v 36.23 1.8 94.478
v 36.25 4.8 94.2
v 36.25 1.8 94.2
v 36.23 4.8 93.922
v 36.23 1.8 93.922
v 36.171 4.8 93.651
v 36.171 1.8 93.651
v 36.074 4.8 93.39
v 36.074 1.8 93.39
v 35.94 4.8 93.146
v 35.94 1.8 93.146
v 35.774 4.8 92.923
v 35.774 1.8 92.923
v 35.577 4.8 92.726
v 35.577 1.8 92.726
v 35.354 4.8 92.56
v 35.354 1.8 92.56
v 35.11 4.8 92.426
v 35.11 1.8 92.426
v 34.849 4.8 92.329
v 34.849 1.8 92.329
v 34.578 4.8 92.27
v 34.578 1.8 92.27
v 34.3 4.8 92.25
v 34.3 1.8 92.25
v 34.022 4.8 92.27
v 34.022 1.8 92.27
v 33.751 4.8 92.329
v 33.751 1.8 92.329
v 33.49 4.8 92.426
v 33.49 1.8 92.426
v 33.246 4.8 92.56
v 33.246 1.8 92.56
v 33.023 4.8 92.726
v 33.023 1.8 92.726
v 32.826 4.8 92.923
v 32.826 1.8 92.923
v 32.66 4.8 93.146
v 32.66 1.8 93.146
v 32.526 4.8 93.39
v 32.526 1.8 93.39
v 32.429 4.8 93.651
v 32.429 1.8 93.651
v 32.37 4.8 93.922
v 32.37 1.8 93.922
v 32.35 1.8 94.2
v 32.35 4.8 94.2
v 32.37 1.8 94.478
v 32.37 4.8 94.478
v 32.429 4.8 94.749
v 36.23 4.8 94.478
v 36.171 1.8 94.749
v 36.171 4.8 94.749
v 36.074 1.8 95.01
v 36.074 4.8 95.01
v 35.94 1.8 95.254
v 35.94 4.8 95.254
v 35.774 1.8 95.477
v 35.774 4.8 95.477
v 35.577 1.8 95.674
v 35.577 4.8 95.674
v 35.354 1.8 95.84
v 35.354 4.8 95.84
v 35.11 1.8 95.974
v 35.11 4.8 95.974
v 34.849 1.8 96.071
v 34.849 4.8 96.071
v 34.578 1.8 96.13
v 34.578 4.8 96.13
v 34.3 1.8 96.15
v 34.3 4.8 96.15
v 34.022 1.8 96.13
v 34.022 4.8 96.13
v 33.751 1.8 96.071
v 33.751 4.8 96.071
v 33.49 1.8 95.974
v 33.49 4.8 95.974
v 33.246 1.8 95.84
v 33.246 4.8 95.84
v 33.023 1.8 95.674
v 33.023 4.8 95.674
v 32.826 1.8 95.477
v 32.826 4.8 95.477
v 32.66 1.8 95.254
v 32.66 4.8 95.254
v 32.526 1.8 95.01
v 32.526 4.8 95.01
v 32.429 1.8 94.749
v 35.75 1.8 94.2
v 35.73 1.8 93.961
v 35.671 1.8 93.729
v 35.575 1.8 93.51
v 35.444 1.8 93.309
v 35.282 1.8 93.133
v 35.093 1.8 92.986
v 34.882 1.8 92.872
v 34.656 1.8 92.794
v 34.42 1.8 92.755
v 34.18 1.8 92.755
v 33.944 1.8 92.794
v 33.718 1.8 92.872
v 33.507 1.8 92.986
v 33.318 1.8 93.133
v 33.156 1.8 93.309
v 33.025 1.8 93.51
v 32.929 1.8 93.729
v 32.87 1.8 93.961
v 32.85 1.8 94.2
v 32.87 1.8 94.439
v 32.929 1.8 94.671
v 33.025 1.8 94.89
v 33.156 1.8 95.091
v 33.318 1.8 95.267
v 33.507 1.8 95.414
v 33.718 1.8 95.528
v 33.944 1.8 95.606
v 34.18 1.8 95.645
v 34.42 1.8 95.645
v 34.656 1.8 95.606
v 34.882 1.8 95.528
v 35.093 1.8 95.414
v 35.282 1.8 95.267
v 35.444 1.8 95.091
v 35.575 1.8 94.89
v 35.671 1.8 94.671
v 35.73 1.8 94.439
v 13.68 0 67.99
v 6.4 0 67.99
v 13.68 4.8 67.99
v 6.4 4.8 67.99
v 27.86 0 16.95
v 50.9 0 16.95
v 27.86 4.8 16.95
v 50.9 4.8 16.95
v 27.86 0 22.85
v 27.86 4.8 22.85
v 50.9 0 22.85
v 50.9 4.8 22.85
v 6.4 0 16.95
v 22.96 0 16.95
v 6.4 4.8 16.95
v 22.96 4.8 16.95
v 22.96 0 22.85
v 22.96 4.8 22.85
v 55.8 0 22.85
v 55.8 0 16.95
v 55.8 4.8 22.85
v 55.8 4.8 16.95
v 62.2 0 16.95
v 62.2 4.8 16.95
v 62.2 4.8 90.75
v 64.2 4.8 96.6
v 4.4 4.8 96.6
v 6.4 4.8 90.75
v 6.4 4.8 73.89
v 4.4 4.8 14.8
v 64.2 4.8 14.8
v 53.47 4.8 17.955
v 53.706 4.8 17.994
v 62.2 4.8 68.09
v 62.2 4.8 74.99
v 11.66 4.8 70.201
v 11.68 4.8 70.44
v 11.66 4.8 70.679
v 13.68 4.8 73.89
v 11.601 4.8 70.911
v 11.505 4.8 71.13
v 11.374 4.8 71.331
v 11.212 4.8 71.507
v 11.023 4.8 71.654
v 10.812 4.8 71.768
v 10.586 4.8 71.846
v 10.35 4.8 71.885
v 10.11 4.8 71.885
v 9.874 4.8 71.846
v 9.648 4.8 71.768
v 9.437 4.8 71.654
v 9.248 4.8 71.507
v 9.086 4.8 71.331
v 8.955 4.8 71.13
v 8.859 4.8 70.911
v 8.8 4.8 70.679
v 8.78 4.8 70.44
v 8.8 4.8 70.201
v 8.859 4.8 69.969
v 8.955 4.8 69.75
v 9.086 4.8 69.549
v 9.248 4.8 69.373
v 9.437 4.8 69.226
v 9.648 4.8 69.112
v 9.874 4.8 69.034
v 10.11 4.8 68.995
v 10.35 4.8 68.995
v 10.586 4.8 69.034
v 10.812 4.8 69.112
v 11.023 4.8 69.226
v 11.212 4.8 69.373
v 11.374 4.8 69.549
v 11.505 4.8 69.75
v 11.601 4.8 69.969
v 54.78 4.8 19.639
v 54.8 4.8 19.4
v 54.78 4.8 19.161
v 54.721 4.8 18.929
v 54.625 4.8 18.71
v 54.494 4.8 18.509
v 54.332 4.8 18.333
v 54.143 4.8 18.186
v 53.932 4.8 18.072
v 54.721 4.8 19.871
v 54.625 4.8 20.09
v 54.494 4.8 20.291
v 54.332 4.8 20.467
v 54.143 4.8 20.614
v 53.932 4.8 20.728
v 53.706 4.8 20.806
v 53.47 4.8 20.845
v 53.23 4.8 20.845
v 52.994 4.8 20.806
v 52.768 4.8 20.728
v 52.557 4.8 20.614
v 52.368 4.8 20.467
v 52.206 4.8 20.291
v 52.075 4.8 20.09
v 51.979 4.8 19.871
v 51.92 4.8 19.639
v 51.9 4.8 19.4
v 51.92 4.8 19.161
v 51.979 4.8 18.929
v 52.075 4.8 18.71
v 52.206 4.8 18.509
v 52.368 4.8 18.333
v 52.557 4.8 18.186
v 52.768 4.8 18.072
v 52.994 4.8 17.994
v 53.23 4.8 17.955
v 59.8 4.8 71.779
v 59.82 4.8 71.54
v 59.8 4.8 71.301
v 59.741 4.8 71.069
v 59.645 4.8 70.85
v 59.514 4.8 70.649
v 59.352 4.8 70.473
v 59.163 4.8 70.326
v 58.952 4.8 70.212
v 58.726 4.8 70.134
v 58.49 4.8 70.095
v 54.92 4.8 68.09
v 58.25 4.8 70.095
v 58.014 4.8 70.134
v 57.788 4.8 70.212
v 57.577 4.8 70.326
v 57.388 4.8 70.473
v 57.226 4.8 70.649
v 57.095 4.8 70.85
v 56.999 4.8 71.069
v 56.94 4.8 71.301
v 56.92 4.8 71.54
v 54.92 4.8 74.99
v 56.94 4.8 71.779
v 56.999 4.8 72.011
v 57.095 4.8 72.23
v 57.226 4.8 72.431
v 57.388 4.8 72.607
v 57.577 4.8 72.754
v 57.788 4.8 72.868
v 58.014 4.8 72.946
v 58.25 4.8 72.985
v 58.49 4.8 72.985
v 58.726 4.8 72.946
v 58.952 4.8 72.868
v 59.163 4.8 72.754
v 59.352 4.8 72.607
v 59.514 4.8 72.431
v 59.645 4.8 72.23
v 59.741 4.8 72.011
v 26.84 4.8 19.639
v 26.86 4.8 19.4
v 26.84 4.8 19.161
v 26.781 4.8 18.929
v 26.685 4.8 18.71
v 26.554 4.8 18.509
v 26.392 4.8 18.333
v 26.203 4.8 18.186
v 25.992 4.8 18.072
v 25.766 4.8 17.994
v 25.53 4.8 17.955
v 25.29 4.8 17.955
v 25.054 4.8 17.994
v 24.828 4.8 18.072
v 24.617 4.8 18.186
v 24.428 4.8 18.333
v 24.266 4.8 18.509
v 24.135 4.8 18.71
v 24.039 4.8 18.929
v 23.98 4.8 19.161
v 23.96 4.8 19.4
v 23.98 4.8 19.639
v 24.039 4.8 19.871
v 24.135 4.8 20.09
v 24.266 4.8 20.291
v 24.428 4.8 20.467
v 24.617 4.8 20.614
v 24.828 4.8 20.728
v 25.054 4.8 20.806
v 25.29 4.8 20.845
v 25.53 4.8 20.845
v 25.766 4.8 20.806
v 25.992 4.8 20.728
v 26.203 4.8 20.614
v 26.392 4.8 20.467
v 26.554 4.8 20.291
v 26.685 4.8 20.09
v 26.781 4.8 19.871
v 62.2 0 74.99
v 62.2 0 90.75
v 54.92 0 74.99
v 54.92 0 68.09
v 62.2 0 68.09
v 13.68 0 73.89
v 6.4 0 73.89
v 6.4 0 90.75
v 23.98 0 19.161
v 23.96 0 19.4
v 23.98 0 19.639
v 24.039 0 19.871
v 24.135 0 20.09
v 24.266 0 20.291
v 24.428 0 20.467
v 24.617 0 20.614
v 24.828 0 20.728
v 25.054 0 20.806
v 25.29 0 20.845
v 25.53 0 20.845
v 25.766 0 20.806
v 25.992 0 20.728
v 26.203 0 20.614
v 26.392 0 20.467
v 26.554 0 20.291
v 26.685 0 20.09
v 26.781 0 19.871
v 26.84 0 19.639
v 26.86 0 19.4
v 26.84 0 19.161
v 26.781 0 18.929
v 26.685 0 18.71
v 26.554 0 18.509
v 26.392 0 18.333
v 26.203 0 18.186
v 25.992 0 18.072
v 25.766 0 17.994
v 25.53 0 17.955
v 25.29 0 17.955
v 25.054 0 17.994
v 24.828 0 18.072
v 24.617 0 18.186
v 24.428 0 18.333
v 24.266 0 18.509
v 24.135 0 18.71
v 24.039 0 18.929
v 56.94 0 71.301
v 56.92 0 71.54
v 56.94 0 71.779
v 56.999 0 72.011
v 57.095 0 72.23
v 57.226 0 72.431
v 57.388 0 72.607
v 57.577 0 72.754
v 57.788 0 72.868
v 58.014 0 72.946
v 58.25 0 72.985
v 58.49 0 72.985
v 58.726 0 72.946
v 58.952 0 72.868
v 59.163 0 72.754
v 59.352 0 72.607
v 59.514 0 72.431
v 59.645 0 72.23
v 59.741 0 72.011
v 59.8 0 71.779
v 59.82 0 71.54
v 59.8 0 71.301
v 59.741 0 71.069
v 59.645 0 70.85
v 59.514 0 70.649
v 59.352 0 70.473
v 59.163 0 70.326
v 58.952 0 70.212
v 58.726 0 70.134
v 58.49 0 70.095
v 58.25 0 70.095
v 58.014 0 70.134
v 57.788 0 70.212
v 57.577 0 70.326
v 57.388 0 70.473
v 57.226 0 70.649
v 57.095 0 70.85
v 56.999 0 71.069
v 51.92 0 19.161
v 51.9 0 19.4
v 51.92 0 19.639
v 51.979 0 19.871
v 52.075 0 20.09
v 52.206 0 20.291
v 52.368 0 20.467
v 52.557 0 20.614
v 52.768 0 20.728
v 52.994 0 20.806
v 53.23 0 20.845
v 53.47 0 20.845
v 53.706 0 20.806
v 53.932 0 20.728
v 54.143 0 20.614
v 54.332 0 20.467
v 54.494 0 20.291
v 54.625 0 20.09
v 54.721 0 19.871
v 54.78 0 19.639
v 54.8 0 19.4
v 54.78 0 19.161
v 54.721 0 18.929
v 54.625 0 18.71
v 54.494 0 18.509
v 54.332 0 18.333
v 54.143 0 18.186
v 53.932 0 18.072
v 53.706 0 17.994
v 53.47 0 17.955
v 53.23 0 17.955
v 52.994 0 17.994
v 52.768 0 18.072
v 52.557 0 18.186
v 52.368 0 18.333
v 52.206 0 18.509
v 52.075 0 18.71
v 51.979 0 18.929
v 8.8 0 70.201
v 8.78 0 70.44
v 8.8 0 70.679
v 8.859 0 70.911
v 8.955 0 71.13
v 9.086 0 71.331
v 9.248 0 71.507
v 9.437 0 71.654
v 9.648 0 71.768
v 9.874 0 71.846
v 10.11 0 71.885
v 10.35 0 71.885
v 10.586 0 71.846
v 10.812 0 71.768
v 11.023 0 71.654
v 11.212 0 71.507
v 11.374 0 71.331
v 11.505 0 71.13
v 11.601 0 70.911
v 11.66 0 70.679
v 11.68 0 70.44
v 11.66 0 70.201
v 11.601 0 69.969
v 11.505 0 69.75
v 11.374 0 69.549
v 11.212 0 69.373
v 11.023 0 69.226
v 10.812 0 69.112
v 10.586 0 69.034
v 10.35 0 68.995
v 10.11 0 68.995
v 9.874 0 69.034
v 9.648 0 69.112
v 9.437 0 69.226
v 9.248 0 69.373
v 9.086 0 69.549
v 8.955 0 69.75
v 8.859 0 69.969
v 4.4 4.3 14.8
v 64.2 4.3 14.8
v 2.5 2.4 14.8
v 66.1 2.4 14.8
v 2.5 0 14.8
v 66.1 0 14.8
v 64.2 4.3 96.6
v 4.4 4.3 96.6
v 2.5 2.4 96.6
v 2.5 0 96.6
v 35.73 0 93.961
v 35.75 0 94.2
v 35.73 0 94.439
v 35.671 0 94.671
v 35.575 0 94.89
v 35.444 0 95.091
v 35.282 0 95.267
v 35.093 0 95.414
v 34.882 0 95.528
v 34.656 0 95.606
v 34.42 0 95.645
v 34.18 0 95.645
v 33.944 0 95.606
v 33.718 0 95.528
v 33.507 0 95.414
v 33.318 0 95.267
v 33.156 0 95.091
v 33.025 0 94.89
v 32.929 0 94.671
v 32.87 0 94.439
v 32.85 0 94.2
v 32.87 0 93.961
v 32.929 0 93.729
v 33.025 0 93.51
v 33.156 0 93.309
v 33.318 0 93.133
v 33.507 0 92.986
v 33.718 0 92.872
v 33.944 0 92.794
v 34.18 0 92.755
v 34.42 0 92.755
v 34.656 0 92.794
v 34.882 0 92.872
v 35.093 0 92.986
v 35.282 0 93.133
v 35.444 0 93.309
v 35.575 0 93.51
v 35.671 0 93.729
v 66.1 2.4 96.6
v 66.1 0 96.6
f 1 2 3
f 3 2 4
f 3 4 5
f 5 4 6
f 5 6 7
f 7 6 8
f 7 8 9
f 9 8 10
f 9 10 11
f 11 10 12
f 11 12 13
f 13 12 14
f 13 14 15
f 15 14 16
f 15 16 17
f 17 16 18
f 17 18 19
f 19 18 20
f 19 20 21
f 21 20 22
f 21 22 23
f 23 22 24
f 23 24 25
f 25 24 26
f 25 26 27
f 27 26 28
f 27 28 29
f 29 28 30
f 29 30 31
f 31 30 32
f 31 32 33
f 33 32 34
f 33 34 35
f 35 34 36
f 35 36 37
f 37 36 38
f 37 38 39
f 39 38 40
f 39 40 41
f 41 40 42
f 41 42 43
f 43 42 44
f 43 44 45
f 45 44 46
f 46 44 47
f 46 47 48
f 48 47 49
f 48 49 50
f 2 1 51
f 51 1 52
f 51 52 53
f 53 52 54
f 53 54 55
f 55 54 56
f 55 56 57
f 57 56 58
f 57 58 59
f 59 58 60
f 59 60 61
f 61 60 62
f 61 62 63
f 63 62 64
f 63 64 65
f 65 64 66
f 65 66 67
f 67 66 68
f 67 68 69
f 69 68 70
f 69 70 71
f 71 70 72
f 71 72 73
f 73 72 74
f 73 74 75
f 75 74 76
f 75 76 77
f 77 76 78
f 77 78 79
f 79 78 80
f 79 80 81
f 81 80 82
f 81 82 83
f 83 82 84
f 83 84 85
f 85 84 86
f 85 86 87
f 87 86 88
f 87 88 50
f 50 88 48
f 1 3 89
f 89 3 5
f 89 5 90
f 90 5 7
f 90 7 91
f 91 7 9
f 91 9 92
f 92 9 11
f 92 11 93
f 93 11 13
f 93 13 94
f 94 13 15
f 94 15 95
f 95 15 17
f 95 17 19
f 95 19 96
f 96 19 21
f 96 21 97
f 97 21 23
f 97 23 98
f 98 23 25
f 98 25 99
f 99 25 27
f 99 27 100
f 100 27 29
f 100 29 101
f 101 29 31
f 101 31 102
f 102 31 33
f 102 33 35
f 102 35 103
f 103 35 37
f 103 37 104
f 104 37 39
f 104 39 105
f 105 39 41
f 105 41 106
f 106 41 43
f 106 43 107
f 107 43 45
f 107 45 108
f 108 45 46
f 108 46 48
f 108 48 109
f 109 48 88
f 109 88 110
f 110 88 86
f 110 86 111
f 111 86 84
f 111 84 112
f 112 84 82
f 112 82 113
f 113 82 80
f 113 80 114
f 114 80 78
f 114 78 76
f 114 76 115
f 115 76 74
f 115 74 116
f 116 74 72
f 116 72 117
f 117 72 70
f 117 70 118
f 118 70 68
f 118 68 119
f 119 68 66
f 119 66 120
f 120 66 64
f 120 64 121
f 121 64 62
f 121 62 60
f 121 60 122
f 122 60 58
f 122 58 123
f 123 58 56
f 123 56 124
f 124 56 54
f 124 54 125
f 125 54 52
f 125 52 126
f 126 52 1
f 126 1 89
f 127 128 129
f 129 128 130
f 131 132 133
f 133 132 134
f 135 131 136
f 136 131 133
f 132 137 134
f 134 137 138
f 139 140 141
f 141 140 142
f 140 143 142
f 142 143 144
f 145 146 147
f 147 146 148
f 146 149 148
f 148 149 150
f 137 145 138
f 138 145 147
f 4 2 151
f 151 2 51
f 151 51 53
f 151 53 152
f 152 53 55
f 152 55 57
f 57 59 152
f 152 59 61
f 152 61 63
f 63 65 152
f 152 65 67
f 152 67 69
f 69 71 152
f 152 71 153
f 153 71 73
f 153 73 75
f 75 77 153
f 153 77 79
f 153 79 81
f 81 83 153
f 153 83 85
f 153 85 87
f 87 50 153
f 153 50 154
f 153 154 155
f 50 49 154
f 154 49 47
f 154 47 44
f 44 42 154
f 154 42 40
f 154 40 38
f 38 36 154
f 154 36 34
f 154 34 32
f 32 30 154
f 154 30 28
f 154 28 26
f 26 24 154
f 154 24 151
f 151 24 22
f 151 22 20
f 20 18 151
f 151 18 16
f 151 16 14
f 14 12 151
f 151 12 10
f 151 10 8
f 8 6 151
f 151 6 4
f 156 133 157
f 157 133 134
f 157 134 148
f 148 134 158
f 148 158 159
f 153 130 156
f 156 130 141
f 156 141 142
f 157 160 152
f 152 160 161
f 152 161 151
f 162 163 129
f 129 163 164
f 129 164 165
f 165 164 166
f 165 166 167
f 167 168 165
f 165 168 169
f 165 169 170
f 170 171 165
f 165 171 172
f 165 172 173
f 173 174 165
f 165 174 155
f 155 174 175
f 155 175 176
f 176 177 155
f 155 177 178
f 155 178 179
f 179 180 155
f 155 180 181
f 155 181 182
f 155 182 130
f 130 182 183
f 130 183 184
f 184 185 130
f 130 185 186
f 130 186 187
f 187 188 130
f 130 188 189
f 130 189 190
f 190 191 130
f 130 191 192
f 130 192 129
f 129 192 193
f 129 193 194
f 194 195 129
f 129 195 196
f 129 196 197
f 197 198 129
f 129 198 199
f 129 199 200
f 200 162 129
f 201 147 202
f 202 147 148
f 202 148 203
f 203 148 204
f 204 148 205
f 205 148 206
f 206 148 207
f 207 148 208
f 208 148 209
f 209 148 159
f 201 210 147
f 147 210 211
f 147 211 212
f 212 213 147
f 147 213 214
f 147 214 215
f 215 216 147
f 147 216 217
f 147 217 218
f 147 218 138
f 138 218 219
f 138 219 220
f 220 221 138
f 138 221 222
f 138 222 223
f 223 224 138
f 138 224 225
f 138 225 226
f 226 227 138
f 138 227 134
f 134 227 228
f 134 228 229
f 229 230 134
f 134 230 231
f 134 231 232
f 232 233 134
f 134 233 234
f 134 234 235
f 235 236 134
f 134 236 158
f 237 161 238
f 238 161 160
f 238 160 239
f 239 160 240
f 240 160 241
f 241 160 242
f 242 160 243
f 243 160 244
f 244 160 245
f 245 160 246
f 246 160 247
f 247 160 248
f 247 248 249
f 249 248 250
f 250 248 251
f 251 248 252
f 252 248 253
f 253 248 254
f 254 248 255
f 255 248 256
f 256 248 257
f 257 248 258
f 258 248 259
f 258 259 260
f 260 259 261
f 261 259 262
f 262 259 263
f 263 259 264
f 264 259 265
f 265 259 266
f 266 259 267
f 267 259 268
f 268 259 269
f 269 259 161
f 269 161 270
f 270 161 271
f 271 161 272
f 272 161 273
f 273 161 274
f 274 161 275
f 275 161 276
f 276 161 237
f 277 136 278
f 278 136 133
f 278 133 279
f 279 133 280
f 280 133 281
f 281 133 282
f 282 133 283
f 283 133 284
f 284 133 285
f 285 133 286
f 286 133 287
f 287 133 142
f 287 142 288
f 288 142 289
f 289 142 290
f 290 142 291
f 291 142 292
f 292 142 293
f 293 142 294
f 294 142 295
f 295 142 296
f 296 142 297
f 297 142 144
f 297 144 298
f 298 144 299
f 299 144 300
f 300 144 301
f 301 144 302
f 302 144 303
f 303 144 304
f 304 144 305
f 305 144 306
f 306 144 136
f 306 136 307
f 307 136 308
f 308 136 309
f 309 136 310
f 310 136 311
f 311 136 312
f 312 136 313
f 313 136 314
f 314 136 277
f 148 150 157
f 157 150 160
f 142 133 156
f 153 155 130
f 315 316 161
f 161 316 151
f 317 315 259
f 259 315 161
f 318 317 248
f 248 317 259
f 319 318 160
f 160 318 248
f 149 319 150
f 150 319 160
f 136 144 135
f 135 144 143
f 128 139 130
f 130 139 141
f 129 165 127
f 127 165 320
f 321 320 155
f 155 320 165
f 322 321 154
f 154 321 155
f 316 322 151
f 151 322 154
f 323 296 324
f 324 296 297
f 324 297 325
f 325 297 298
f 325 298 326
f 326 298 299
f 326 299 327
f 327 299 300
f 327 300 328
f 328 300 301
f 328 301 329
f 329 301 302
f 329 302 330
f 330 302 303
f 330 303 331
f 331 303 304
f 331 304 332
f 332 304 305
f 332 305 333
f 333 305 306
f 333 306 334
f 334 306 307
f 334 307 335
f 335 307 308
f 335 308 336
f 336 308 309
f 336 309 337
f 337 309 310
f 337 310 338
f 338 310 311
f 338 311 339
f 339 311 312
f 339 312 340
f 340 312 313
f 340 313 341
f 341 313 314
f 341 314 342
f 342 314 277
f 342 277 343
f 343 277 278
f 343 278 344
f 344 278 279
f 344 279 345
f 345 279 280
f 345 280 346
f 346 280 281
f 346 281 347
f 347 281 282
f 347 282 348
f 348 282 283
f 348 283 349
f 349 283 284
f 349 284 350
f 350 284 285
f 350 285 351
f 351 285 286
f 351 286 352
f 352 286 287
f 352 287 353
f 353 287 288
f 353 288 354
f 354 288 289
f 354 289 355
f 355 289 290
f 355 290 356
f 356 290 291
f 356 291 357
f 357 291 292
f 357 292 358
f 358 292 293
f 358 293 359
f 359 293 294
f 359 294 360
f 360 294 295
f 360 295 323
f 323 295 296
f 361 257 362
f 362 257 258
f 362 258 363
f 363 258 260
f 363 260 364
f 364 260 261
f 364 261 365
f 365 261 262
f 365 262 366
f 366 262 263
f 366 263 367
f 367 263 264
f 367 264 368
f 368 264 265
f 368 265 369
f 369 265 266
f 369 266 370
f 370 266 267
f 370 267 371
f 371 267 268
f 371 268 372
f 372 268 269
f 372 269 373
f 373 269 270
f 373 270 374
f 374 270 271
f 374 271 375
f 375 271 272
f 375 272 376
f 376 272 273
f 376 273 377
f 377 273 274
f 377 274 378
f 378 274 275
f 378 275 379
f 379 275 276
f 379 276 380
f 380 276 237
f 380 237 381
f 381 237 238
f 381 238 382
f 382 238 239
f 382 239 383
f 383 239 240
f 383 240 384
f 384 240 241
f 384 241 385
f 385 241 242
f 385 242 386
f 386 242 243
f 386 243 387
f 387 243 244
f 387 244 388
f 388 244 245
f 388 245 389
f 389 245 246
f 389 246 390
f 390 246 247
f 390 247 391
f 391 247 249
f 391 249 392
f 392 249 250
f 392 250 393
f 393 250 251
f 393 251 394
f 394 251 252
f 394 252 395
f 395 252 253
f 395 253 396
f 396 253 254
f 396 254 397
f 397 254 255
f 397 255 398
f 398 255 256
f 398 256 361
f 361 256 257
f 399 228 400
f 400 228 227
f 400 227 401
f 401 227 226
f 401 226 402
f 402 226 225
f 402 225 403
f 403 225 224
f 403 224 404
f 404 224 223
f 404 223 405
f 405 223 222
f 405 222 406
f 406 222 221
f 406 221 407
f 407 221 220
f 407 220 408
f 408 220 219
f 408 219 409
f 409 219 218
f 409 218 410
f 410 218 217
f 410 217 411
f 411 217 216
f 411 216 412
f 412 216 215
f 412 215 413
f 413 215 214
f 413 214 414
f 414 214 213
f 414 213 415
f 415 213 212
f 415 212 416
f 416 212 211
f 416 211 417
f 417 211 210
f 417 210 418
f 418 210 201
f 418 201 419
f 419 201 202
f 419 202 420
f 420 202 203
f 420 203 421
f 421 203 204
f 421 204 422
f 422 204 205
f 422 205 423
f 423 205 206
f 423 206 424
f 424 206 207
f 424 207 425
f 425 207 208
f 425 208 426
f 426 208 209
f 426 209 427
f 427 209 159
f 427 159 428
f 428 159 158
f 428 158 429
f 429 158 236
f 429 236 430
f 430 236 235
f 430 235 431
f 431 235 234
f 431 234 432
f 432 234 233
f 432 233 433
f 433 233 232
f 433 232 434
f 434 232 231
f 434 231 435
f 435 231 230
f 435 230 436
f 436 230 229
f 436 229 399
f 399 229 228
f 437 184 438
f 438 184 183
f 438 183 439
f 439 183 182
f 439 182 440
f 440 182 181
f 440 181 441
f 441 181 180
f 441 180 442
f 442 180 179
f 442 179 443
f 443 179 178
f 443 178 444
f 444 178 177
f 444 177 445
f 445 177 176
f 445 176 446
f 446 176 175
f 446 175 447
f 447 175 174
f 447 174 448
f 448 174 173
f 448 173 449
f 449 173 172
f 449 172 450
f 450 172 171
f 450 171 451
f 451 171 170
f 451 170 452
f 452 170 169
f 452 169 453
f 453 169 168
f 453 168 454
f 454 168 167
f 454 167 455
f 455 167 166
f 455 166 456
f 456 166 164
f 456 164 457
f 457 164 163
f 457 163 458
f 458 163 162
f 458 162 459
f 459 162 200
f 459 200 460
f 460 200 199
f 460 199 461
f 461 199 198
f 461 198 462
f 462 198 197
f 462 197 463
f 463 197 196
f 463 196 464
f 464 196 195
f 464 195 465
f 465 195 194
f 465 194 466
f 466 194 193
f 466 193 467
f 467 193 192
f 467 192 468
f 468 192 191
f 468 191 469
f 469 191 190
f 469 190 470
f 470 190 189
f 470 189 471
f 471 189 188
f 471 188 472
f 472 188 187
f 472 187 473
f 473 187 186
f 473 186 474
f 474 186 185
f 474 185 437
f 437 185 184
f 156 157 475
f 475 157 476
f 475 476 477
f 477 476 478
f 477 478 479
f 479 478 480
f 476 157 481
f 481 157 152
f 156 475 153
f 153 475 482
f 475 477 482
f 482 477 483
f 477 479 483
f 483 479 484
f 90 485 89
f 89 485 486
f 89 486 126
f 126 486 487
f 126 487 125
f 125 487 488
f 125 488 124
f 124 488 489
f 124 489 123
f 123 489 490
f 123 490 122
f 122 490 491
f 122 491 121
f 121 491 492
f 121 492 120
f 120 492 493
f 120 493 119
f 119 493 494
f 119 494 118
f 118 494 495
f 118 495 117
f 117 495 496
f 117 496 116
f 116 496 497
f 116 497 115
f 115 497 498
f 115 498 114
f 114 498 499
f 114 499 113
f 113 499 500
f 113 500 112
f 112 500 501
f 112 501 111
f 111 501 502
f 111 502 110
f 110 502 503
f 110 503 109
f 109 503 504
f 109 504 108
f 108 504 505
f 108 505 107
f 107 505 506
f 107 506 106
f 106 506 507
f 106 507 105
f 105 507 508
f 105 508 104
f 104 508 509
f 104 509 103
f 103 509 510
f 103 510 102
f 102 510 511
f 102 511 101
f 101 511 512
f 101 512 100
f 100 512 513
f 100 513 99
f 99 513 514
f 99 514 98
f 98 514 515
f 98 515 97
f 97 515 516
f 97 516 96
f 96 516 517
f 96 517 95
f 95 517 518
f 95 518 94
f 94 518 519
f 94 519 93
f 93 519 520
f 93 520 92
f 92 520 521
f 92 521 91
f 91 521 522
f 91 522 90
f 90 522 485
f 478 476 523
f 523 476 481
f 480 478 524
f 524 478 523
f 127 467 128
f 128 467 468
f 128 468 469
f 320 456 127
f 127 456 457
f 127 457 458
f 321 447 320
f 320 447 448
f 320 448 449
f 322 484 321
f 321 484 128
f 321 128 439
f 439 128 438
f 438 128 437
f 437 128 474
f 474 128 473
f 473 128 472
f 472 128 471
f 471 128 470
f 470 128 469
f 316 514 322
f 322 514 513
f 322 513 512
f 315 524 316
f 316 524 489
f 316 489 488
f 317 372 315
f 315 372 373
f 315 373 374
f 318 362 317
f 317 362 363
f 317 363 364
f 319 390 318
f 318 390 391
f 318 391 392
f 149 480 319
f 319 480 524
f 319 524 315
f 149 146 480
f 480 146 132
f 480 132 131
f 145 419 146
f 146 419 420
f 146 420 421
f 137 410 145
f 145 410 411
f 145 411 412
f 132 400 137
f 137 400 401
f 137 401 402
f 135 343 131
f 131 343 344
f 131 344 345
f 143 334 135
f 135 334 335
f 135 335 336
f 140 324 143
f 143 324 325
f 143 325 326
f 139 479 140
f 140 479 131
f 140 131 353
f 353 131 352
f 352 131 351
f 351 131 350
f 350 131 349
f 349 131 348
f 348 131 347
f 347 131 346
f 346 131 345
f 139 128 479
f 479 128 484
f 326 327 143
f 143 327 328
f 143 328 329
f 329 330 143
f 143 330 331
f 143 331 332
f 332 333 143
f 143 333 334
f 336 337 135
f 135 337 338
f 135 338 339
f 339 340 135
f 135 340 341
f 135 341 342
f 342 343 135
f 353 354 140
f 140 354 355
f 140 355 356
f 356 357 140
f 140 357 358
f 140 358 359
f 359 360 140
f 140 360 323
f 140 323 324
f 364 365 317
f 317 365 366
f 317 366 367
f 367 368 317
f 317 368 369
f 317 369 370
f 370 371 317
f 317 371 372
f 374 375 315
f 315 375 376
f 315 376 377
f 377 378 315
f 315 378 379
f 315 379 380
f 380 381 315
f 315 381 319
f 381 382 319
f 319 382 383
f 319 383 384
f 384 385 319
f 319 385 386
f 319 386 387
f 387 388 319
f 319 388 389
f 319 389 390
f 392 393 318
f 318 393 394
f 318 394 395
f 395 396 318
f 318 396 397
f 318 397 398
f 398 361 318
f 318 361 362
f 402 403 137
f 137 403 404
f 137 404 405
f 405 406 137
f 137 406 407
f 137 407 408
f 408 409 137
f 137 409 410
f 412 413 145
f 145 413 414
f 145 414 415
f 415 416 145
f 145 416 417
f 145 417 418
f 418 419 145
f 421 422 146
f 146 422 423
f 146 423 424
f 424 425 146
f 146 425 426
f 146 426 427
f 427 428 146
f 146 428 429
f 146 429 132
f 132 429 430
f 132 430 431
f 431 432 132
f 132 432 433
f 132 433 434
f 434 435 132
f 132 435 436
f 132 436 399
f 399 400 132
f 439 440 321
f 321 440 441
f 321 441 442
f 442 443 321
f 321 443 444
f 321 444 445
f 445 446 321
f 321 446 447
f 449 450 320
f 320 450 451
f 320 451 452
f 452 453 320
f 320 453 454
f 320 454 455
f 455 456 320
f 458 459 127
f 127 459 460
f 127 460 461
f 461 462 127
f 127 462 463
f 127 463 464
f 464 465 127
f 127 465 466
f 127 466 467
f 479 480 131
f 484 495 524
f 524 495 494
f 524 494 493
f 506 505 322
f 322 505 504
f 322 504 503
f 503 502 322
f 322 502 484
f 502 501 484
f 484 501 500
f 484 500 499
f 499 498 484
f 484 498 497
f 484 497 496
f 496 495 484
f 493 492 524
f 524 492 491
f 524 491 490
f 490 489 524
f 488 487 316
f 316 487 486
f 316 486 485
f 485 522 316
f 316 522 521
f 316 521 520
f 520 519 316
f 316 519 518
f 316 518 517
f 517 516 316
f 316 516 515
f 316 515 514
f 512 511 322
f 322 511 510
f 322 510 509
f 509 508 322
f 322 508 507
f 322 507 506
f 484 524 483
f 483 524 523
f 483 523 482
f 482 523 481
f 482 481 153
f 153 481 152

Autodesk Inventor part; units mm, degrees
ref_plane "YZ Plane" through (0, 0, 0) normal (1, 0, 0) x (0, 1, 0)
ref_plane "XZ Plane" through (0, 0, 0) normal (0, 1, 0) x (-1, 0, 0)
ref_plane "XY Plane" through (0, 0, 0) normal (0, 0, 1) x (1, 0, 0)
sketch "Esboço1" plane through (0, 0, 0) normal (0, 0, 1) x (1, 0, 0)
  line L0 (2.9, 0) -> (65.7, 0)
  line L1 (2.9, 0) -> (2.7, 0)
  line L2 (65.7, 0) -> (65.9, 0)
  line L3 (4.6, 4.8) -> (64, 4.8)
  line L4 (64, 4.8) -> (64.2, 4.8)
  line L5 (65.9, 0) -> (66.1, 0)
  line L6 (66.1, 0) -> (66.1, 2.4)
  line L7 (66.1, 2.4) -> (64.2, 4.3)
  line L8 (64.2, 4.8) -> (64.2, 4.3)
  line L9 (2.9, 0) -> (2.7, 0)
  line L10 (4.6, 4.8) -> (4.4, 4.8)
  line L11 (2.7, 0) -> (2.5, 0)
  line L12 (2.5, 0) -> (2.5, 2.4)
  line L13 (2.5, 2.4) -> (4.4, 4.3)
  line L14 (4.4, 4.8) -> (4.4, 4.3)
  point P0 (61.9143, 91.5369)
extrude "Extrusão1" add sketch "Esboço1" along normal blind 96.6
sketch "Esboço3" plane through (4.4, 4.8, 0) normal (0, 1, 0) x (1, 0, 0)
  line L0 (64.2, -96.6) -> (-4.4, -96.6)
  line L1 (-1.9, -96.6) -> (61.7, -96.6)
  line L2 (29.9, -96.6) -> (29.9, -94.2)
  circle A0 centre (51.4, -94.2) radius 1.45
  line L3 (29.9, -96.6) -> (29.9, -91.8)
  line L4 (29.9, -94.2) -> (51.4, -94.2)
  line L5 (29.9, -94.2) -> (8.4, -94.2)
  circle A1 centre (8.4, -94.2) radius 1.45
  line L6 (0.4, -91.8) -> (59.4, -91.8)
  line L7 (61.7, -96.6) -> (-1.9, -96.6)
  circle A2 centre (29.9, -94.2) radius 1.45
  point P0 (-1.9, 0)
  point P1 (61.7, 0)
  dimension "d104" = 2.4
  dimension "d105" = 2.4
  dimension "d140" = 2.9
extrude "Extrusão3" cut sketch "Esboço3" against normal through all contours A2 L5 L2 | L2 L4 A2 | L5 A2 L3 | L3 A2 L4
sketch "Esboço4" plane through (4.4, 4.8, 0) normal (0, 1, 0) x (1, 0, 0)
  line L0 (-1.9, 0) -> (61.7, 0) projected
  line L1 (29.9, 0) -> (29.9, -4.8)
  line L2 (29.9, -4.8) -> (29.9, -14.8)
  line L3 (29.9, -14.8) -> (4.9, -14.8)
  line L4 (29.9, -14.8) -> (54.9, -14.8)
  line L5 (4.9, -14.8) -> (4.9, -4.8)
  line L6 (4.9, -4.8) -> (29.9, -4.8)
  line L7 (29.9, -4.8) -> (54.9, -4.8)
  line L8 (54.9, -4.8) -> (54.9, -14.8)
  line L9 (61.7, 0) -> (61.7, -96.6) projected
  line L10 (61.7, -14.8) -> (-1.9, -14.8)
  line L11 (-1.9, -14.8) -> (-1.9, 0)
  line L12 (-1.9, 0) -> (61.7, 0)
  line L13 (61.7, 0) -> (61.7, -14.8)
  point P0 (-4.4, 0)
  dimension "d51" = 4.8
  dimension "d52" = 10
  dimension "d53" = 25
  dimension "d54" = 25
extrude "Extrusão4" cut sketch "Esboço4" against normal through all
sketch "Esboço5" plane through (4.4, 4.8, 0) normal (0, 1, 0) x (1, 0, 0)
  line L0 (59.8, 0) -> (59.8, -96.6) projected
  line L1 (0, 0) -> (0, -96.6) projected
  line L2 (-1.9, -96.6) -> (61.7, -96.6) projected
  line L3 (-1.9, 0) -> (61.7, 0) projected
  line L4 (29.9, -85.38) -> (3.23, -85.38)
  line L5 (29.9, -85.38) -> (56.57, -85.38)
  line L6 (3.23, -85.38) -> (3.23, -70.14)
  line L7 (3.23, -70.14) -> (4.23, -70.14)
  line L8 (4.23, -70.14) -> (5.83, -70.14)
  line L9 (56.57, -85.38) -> (56.57, -16.8)
  line L10 (3.23, -70.14) -> (3.23, -16.8)
  line L11 (3.23, -16.8) -> (21.01, -16.8)
  line L12 (3.23, -16.8) -> (48.95, -16.8)
  line L13 (21.01, -16.8) -> (21.01, -17.8)
  line L14 (48.95, -16.8) -> (48.95, -17.8)
  line L15 (21.01, -17.8) -> (21.01, -19.4)
  line L16 (48.95, -17.8) -> (48.95, -19.4)
  circle A0 centre (21.01, -19.4) radius 1.45
  circle A1 centre (48.95, -19.4) radius 1.45
  line L17 (5.83, -70.14) -> (5.83, -70.44)
  circle A2 centre (5.83, -70.44) radius 1.45
  line L18 (53.97, -70.14) -> (53.97, -71.54)
  circle A3 centre (53.97, -71.54) radius 1.45
  line L19 (4.9, -14.8) -> (54.9, -14.8) projected
  point P0 (-4.4, 0)
  dimension "d60" = 53.34
  dimension "d61" = 15.24
  dimension "d62" = 1
  dimension "d63" = 1.6
  dimension "d64" = 68.58
  dimension "d65" = 17.78
  dimension "d67" = 45.72
  dimension "d69" = 1
  dimension "d70" = 1
  dimension "d71" = 1.6
  dimension "d72" = 1.6
  dimension "d73" = 2.9
  dimension "d74" = 2.9
  dimension "d77" = 68.58
  dimension "d86" = 0.3
  dimension "d87" = 2.9
  dimension "d88" = 1.4
  dimension "d89" = 2.9
extrude "Extrusão5" cut sketch "Esboço5" against normal through all contours A2 | A1 | A0 | A3
sketch "Esboço10" plane through (4.4, 4.8, 96.6) normal (0, 1, 0) x (1, 0, 0)
  circle A0 centre (53.97, 25.06) radius 1.45 projected
  circle A1 centre (5.83, 26.16) radius 1.45 projected
  circle A2 centre (48.95, 77.2) radius 1.45 projected
  line L0 (48.95, 77.2) -> (48.95, 75.75)
  line L1 (48.95, 75.75) -> (48.95, 73.75)
  circle A3 centre (21.01, 77.2) radius 1.45 projected
  line L2 (21.01, 75.75) -> (21.01, 73.75)
  line L3 (59.8, 81.8) -> (59.8, 0) projected
  line L4 (59.8, 40.9) -> (57.8, 40.9)
  line L5 (0, 81.8) -> (0, 0) projected
  line L6 (0, 40.9) -> (2, 40.9)
  line L7 (51.4, 3.85) -> (51.4, 5.85)
  line L8 (57.8, 40.9) -> (57.8, 73.75)
  line L9 (57.8, 73.75) -> (48.95, 73.75)
  line L10 (48.95, 73.75) -> (21.01, 73.75)
  line L11 (21.01, 73.75) -> (2, 73.75)
  line L12 (2, 73.75) -> (2, 40.9)
  line L13 (53.97, 28.51) -> (50.52, 28.51)
  line L14 (50.52, 28.51) -> (50.52, 25.06)
  line L15 (51.4, 5.85) -> (57.8, 5.85)
  line L16 (57.8, 40.9) -> (57.8, 28.51)
  line L17 (57.8, 28.51) -> (53.97, 28.51)
  line L18 (57.8, 5.85) -> (57.8, 21.61)
  line L19 (57.8, 21.61) -> (53.97, 21.61)
  line L20 (53.97, 21.61) -> (50.52, 21.61)
  line L21 (50.52, 21.61) -> (50.52, 25.06)
  line L22 (2, 40.9) -> (2, 29.61)
  line L23 (2, 22.71) -> (2, 5.85)
  line L24 (2, 5.85) -> (51.4, 5.85)
  line L25 (2, 29.61) -> (5.83, 29.61)
  line L26 (9.28, 29.61) -> (9.28, 26.16)
  line L27 (9.28, 22.71) -> (5.83, 22.71)
  line L28 (5.83, 22.71) -> (2, 22.71)
  line L29 (9.28, 22.71) -> (9.28, 26.16)
  line L30 (9.28, 29.61) -> (5.83, 29.61)
  line L31 (57.8, 21.61) -> (57.8, 28.51)
  point P0 (-4.4, 96.6)
  dimension "d108" = 2
  dimension "d109" = 2
  dimension "d110" = 2
  dimension "d111" = 2
extrude "Extrusão10" cut sketch "Esboço10" against normal through all contours L9 L8 L16 L17 L13 L14 L21 L20 L19 L18 L15 L24 L23 L28 L27 L29 L26 L30 L25 L22 L12 L11 L10
sketch "Esboço13" plane through (4.4, 4.8, 96.6) normal (0, 1, 0) x (1, 0, 0)
  circle A0 centre (48.95, 77.2) radius 1.45 projected
  line L0 (51.4, 77.2) -> (51.4, 73.75)
  line L1 (51.4, 79.65) -> (51.4, 77.2)
  line L2 (57.8, 77.2) -> (57.8, 79.65)
  line L3 (57.8, 79.65) -> (51.4, 79.65)
  circle A1 centre (21.01, 77.2) radius 1.45 projected
  line L4 (23.46, 77.2) -> (23.46, 73.75)
  line L5 (23.46, 77.2) -> (23.46, 79.65)
  line L6 (46.5, 77.2) -> (46.5, 73.75)
  line L7 (46.5, 77.2) -> (46.5, 79.65)
  line L8 (46.5, 79.65) -> (23.46, 79.65)
  line L9 (17.9739, 79.65) -> (2, 79.65)
  line L10 (2, 73.75) -> (2, 29.61) projected
  line L11 (2, 79.65) -> (2, 73.75)
  line L12 (2, 73.75) -> (17.9739, 73.75)
  line L13 (18.56, 77.2) -> (18.56, 73.75)
  line L14 (18.56, 73.75) -> (17.9739, 73.75)
  line L15 (18.56, 77.2) -> (18.56, 79.65)
  line L16 (18.56, 79.65) -> (17.9739, 79.65)
  line L17 (9.28, 22.71) -> (9.28, 29.61) projected
  line L18 (9.28, 29.61) -> (9.28, 28.61)
  line L19 (9.28, 28.61) -> (2, 28.61)
  line L20 (2, 28.61) -> (2, 29.61)
  line L21 (9.28, 29.61) -> (2, 29.61)
  line L22 (57.8, 28.51) -> (57.8, 73.75) projected
  line L23 (57.8, 77.2) -> (57.8, 73.75)
  line L24 (57.8, 73.75) -> (51.4, 73.75)
  line L25 (2, 73.75) -> (57.8, 73.75) projected
  line L26 (51.4, 73.75) -> (2, 73.75)
  point P0 (-4.4, 96.6)
  dimension "d139" = 1
extrude "Extrusão12" cut sketch "Esboço13" against normal through all contours L1 L3 L2 L23 L24 L0 | L21 L17 L19 L20 | L14 L12 L11 L9 L16 L15 L13 | L25 L4 L5 L8 L7 L6
sketch "Esboço15" plane through (4.4, 4.8, 96.6) normal (0, 1, 0) x (1, 0, 0)
  circle A0 centre (29.9, 2.4) radius 1.45 projected
  circle A1 centre (29.9, 2.4) radius 1.45
  circle A2 centre (29.9, 2.4) radius 1.95
  point P0 (-4.4, 96.6)
  dimension "d142" = 3.9
extrude "Extrusão13" cut sketch "Esboço15" against normal blind 3
properties part number "tampa"
